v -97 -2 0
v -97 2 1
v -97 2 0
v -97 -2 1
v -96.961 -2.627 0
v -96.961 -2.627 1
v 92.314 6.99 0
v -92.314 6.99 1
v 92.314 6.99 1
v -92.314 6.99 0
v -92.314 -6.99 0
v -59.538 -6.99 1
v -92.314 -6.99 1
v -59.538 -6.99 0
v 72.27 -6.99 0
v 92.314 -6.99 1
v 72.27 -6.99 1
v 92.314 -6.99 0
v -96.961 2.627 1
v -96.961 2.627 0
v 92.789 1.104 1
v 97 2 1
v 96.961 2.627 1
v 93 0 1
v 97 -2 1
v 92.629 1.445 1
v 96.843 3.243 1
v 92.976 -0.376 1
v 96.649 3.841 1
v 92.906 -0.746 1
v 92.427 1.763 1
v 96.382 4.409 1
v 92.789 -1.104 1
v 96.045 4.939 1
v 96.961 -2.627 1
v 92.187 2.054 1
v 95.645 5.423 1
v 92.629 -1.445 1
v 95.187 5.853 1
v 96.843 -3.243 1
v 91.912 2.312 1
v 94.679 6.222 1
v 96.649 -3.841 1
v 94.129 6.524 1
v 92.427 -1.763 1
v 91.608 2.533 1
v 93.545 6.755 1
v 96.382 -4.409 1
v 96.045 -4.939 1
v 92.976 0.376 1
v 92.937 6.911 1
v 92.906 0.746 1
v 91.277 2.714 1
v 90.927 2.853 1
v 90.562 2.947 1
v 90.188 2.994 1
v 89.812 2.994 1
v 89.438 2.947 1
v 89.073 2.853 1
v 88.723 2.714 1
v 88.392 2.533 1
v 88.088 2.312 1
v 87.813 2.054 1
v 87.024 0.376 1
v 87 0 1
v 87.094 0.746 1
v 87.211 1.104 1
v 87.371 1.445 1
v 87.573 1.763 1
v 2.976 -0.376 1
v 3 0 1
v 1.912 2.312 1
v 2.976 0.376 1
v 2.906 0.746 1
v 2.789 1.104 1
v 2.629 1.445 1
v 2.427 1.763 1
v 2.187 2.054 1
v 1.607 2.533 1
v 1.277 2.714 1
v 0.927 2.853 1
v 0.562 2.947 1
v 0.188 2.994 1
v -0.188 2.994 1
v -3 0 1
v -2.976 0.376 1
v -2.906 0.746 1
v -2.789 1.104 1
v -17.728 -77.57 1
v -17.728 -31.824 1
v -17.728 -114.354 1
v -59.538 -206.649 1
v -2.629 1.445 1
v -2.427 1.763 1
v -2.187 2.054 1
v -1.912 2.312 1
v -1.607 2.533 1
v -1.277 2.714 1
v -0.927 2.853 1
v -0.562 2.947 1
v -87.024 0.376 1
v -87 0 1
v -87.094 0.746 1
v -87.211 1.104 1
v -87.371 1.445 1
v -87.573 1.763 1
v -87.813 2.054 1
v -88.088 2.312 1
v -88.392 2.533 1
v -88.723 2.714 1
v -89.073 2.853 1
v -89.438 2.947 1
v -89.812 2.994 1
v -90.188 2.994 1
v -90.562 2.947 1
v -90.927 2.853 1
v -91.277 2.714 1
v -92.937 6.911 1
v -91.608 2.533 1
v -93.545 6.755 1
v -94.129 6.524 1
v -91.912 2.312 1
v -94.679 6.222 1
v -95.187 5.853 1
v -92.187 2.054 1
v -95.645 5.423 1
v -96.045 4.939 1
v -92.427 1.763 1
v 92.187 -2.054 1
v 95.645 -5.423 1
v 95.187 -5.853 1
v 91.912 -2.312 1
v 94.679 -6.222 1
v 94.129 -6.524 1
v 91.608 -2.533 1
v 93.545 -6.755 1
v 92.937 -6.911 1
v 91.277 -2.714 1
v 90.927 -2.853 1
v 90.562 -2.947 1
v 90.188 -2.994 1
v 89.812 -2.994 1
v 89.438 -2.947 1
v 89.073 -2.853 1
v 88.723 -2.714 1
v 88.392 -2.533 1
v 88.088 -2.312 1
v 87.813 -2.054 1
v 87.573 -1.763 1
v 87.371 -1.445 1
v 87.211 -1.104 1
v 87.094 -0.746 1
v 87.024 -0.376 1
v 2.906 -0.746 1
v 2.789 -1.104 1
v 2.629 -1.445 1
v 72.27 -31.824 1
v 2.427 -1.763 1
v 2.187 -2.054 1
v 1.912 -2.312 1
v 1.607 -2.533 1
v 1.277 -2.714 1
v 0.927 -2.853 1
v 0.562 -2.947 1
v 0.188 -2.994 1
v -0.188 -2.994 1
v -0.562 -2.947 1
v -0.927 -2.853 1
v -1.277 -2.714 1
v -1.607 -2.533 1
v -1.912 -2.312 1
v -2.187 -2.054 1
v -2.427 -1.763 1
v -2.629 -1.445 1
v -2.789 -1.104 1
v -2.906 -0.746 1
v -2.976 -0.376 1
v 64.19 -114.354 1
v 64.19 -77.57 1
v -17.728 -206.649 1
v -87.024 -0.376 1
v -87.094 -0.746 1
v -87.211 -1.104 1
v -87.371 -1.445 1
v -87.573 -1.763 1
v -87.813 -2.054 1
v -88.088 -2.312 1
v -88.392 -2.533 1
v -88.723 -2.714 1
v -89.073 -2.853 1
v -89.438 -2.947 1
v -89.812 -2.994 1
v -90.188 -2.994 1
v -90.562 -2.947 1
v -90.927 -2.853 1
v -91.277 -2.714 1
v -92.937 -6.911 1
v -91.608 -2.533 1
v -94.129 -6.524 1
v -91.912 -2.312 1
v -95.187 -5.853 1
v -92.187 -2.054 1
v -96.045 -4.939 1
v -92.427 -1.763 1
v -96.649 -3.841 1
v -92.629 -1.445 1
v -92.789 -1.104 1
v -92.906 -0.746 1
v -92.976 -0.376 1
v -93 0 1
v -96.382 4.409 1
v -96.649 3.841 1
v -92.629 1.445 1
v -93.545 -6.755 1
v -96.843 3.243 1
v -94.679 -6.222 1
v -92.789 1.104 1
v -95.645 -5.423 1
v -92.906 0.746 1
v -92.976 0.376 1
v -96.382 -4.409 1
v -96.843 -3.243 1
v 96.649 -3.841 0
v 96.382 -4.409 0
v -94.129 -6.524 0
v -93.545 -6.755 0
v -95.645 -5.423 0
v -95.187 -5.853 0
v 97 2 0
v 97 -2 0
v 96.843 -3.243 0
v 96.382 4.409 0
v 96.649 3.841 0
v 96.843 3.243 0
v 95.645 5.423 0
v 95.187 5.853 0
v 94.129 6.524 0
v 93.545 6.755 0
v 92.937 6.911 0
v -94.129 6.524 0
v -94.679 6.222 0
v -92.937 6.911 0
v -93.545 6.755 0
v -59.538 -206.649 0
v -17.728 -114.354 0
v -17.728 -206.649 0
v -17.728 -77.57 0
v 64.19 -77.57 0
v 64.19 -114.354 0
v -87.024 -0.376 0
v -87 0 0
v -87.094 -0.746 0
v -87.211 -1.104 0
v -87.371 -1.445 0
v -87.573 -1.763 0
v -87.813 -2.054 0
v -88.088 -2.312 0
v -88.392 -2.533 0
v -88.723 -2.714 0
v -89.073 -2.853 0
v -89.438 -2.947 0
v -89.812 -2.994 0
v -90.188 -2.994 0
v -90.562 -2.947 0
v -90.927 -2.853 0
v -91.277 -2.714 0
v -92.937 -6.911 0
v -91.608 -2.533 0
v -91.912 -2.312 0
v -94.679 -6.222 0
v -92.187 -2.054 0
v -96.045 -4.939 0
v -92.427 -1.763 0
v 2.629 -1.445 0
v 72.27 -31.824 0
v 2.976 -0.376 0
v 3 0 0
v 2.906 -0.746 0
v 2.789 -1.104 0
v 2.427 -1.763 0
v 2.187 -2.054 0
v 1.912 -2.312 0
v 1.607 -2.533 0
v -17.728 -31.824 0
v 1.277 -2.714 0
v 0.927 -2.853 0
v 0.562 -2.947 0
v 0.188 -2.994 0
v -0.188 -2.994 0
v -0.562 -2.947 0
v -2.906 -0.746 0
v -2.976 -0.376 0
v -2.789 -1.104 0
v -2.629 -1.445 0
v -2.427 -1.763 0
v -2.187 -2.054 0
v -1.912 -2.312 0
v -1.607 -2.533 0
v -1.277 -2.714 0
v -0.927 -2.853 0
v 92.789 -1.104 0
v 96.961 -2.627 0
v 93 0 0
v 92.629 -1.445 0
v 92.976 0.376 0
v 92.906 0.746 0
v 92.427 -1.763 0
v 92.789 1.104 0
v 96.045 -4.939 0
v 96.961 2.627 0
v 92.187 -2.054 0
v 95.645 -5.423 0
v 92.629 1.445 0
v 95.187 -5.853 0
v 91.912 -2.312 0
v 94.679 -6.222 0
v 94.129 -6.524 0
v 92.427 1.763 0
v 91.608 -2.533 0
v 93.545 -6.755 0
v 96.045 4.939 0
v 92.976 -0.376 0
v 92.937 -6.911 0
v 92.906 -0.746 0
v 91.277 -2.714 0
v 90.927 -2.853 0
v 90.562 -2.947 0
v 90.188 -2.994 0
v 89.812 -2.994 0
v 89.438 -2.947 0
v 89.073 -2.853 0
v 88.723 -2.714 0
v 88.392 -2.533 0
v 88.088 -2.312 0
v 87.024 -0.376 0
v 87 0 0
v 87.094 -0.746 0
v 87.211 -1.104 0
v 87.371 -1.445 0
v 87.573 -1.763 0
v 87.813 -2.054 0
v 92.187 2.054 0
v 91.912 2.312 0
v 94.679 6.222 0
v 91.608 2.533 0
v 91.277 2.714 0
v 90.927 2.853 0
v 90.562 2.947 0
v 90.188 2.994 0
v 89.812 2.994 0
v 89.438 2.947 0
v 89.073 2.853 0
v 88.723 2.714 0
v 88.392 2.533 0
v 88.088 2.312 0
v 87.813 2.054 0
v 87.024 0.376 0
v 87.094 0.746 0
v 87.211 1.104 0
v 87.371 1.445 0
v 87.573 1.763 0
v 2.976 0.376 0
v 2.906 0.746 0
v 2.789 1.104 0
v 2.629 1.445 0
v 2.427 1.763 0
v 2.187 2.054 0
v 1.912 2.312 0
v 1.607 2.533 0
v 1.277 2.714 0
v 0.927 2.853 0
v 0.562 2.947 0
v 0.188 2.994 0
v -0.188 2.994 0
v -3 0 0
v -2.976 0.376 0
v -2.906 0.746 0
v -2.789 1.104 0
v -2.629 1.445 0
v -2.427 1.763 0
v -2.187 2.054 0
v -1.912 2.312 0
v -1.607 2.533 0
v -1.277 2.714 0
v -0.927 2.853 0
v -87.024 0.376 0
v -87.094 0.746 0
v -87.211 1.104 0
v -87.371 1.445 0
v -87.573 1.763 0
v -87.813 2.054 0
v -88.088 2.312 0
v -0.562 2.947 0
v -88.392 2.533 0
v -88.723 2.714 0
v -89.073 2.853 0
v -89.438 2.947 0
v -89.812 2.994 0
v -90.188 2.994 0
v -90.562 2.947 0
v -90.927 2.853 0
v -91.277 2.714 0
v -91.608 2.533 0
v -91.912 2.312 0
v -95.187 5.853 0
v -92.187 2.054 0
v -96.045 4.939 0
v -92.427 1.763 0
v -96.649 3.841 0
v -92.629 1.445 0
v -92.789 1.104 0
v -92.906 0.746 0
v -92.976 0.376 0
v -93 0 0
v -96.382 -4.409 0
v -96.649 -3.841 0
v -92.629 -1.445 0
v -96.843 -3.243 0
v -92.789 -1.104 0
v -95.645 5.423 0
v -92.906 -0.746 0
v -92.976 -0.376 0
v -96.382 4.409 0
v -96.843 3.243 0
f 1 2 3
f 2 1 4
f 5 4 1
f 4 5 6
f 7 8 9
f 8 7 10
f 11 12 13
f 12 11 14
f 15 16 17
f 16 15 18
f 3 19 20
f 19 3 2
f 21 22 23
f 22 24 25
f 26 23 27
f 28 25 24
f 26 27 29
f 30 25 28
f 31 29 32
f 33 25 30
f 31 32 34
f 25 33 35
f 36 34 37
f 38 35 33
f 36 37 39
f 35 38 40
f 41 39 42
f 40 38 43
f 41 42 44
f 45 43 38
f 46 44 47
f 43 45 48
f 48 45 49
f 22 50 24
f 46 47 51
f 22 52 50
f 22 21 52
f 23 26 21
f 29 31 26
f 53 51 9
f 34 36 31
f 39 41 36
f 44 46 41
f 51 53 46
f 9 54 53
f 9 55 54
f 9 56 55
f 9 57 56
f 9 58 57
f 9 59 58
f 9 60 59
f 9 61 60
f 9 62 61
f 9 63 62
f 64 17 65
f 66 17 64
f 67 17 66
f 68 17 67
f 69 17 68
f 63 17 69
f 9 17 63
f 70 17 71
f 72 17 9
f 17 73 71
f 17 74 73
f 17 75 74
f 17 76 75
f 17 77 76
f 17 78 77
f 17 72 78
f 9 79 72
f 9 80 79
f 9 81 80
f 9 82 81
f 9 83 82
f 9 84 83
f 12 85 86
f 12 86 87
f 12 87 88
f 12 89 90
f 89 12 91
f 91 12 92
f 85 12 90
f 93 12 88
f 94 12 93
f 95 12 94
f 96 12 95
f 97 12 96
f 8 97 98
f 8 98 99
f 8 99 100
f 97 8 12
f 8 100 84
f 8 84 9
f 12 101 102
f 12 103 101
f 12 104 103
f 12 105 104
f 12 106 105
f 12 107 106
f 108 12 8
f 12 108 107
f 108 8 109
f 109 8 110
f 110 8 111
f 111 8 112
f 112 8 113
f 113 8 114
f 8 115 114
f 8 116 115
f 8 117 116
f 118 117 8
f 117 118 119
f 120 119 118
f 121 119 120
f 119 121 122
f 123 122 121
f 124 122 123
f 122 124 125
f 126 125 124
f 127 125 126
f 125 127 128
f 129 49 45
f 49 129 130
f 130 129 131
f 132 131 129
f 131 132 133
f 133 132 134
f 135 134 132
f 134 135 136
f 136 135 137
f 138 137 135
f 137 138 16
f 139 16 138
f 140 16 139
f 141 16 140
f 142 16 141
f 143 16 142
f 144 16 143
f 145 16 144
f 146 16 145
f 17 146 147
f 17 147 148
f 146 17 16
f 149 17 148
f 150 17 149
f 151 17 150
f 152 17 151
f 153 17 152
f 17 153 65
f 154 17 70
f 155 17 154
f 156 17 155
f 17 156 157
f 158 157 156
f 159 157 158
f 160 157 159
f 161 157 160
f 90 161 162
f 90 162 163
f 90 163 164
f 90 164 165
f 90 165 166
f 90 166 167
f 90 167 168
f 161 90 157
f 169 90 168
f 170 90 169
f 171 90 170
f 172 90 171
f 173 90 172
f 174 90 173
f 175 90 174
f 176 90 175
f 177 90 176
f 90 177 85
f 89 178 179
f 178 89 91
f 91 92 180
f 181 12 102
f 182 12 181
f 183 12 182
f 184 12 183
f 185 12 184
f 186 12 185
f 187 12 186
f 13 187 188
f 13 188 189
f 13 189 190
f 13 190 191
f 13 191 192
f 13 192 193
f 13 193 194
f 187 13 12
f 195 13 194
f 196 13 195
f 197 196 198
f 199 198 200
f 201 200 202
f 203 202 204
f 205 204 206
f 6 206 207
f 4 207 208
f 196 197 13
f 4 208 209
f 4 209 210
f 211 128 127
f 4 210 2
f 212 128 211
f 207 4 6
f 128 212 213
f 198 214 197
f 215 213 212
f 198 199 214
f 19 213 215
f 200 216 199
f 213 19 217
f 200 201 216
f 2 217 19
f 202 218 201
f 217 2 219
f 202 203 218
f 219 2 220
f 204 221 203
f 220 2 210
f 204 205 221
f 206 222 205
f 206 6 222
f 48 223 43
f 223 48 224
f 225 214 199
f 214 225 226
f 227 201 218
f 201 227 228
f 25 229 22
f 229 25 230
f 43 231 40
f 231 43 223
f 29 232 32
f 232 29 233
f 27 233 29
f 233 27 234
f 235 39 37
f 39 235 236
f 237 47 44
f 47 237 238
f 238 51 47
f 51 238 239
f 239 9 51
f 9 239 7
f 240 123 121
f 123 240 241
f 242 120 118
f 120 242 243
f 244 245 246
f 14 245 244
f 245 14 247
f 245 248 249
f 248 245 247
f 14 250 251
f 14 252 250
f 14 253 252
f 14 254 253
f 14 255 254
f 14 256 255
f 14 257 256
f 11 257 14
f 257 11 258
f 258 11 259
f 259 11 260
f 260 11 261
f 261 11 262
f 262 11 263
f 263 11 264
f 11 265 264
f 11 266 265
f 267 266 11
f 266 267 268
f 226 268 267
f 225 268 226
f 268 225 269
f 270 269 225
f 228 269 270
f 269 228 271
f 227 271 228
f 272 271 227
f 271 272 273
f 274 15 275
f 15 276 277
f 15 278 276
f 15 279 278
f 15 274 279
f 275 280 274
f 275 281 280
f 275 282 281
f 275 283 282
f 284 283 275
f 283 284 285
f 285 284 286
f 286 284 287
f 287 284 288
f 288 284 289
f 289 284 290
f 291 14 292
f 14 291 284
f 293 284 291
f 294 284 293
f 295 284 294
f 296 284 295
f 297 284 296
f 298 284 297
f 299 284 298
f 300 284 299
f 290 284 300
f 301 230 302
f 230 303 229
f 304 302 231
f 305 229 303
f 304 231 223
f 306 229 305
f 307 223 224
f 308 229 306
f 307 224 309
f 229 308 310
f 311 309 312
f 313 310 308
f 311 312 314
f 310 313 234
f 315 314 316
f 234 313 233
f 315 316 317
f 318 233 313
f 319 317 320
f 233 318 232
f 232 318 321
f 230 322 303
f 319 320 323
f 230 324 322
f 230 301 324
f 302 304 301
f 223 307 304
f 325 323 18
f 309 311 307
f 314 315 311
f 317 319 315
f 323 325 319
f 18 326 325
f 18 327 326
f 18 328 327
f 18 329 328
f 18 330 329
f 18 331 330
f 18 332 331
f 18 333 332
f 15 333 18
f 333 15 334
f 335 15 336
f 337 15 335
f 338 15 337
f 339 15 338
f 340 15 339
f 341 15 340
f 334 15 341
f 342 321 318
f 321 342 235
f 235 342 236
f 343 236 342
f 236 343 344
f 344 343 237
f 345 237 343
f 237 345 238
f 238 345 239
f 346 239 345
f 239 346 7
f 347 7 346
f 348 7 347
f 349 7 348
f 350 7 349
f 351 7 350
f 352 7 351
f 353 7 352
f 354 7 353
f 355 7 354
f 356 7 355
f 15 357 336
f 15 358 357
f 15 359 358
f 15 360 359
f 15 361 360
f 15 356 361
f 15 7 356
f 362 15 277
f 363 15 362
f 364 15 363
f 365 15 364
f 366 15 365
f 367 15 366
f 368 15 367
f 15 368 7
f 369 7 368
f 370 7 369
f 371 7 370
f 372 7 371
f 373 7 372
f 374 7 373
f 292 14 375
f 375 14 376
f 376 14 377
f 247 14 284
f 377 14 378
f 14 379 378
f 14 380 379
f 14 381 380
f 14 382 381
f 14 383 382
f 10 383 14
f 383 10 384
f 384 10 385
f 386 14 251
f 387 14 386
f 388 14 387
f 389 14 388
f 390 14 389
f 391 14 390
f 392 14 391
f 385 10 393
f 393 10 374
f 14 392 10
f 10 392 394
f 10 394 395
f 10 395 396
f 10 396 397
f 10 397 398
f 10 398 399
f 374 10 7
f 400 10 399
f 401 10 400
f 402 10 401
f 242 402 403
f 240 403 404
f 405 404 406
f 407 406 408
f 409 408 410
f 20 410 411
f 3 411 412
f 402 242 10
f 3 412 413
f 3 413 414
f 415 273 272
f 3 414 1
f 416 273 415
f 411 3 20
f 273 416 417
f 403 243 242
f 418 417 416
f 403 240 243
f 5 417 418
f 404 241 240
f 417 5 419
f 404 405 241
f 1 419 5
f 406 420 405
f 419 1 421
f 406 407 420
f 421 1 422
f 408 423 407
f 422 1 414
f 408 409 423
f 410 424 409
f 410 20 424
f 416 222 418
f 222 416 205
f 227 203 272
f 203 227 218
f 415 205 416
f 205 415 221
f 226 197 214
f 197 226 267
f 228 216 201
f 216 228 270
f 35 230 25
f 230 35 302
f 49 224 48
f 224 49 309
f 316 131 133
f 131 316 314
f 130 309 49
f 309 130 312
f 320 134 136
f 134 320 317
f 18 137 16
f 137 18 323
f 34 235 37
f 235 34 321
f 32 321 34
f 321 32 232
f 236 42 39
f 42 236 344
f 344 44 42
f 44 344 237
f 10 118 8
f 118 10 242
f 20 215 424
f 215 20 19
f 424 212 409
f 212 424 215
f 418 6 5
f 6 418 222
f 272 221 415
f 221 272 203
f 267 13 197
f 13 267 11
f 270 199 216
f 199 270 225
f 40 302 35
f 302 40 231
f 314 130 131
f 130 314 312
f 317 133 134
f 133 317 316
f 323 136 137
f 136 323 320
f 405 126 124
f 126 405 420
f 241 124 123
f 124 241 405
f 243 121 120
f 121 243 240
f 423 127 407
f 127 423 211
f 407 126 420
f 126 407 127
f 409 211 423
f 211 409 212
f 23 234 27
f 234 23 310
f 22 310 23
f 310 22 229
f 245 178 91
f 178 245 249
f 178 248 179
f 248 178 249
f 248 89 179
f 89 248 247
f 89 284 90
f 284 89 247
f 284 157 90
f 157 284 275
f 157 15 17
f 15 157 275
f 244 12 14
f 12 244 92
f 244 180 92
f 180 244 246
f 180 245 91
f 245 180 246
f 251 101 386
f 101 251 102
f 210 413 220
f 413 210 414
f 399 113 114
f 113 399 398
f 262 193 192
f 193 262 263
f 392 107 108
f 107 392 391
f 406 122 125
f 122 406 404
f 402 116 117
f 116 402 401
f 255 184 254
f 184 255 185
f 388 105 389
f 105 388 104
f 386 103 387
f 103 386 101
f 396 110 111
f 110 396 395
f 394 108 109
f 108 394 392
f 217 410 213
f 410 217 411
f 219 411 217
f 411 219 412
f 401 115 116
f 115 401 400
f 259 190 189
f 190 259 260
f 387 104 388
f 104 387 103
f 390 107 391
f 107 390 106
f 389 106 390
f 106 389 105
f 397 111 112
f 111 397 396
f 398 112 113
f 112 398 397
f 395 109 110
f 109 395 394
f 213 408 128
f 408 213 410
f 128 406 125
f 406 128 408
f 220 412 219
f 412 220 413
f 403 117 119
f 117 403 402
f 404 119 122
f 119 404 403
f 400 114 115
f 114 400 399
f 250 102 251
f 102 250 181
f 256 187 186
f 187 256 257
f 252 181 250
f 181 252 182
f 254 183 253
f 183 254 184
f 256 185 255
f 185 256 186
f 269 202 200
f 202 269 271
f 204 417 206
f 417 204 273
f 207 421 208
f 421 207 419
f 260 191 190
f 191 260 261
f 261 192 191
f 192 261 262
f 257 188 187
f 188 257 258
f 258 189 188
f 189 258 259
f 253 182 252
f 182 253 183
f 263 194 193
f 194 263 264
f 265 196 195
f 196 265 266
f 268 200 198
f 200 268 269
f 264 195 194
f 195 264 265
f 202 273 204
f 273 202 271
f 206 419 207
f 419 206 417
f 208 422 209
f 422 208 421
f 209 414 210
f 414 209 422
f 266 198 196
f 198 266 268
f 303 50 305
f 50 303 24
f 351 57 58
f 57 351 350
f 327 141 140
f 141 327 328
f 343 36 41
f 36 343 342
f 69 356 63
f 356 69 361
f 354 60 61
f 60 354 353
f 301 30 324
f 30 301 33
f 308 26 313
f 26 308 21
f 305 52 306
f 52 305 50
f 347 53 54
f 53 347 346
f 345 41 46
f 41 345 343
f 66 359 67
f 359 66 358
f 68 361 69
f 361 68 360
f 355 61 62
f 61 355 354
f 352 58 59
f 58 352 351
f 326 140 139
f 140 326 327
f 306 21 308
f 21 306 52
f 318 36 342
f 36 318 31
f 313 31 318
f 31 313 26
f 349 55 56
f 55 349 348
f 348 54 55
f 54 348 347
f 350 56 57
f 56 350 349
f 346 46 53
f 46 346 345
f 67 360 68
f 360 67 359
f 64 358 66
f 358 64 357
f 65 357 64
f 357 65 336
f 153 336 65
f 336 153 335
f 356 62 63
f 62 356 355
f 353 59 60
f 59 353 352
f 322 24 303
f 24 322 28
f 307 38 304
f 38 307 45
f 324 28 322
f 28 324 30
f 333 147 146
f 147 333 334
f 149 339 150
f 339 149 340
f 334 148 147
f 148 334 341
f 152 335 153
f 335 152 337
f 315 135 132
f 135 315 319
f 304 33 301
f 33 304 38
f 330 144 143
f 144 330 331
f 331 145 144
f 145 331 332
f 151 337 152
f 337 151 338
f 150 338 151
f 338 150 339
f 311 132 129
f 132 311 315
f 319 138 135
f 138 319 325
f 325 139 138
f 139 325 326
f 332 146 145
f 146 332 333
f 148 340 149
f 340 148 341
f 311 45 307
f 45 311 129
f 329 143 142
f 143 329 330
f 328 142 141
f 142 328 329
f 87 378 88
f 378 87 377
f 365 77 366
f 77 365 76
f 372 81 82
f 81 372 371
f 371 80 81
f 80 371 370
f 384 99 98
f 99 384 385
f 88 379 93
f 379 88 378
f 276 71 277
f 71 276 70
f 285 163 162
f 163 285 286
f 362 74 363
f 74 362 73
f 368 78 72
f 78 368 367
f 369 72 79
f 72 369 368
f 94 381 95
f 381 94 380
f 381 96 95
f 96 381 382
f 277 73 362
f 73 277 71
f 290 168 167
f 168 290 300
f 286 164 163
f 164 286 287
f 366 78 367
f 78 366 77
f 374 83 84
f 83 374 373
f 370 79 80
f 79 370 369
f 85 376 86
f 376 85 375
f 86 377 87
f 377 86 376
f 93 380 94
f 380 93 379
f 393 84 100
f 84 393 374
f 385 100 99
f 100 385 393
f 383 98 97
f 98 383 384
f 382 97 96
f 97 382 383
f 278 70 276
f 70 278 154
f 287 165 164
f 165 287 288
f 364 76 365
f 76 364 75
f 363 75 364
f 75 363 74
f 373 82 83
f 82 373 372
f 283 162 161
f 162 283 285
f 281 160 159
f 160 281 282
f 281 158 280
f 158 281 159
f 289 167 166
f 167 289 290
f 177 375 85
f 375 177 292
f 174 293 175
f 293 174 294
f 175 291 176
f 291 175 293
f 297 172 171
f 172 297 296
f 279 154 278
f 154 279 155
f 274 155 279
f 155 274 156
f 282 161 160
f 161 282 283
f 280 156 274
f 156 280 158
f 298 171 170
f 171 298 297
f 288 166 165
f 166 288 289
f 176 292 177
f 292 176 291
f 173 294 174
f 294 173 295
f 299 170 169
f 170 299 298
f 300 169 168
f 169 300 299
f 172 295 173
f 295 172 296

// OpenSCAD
$fn = 50;


difference() {
	union() {
		translate(v = [0, 0, 0]) {
			rotate(a = [0, 0, 0]) {
				hull() {
					translate(v = [-92.0000000000, 2.0000000000, 0]) {
						rotate(a = [0, 0, 0]) {
							translate(v = [0, 0, 0]) {
								rotate(a = [0, 0, 0]) {
									cylinder(h = 1, r = 5);
								}
							}
						}
					}
					translate(v = [92.0000000000, 2.0000000000, 0]) {
						rotate(a = [0, 0, 0]) {
							translate(v = [0, 0, 0]) {
								rotate(a = [0, 0, 0]) {
									cylinder(h = 1, r = 5);
								}
							}
						}
					}
					translate(v = [-92.0000000000, -2.0000000000, 0]) {
						rotate(a = [0, 0, 0]) {
							translate(v = [0, 0, 0]) {
								rotate(a = [0, 0, 0]) {
									cylinder(h = 1, r = 5);
								}
							}
						}
					}
					translate(v = [92.0000000000, -2.0000000000, 0]) {
						rotate(a = [0, 0, 0]) {
							translate(v = [0, 0, 0]) {
								rotate(a = [0, 0, 0]) {
									cylinder(h = 1, r = 5);
								}
							}
						}
					}
				}
			}
		}
		translate(v = [0, 0, 0]) {
			rotate(a = [0, 0, 0]) {
				linear_extrude(height = 1) {
					text(font = "DejaVu Sans Mono:style=Bold", halign = "center", size = 209.0000000000, text = "F", valign = "top");
				}
			}
		}
	}
	union() {
		translate(v = [-90.0000000000, 0.0000000000, -125.0000000000]) {
			rotate(a = [0, 0, 0]) {
				cylinder(h = 250, r = 3.0000000000);
			}
		}
		translate(v = [90.0000000000, 0.0000000000, -125.0000000000]) {
			rotate(a = [0, 0, 0]) {
				cylinder(h = 250, r = 3.0000000000);
			}
		}
		translate(v = [90.0000000000, 0.0000000000, -125.0000000000]) {
			rotate(a = [0, 0, 0]) {
				cylinder(h = 250, r = 3.0000000000);
			}
		}
		translate(v = [0, 0, -125.0000000000]) {
			rotate(a = [0, 0, 0]) {
				cylinder(h = 250, r = 3.0000000000);
			}
		}
	}
}
